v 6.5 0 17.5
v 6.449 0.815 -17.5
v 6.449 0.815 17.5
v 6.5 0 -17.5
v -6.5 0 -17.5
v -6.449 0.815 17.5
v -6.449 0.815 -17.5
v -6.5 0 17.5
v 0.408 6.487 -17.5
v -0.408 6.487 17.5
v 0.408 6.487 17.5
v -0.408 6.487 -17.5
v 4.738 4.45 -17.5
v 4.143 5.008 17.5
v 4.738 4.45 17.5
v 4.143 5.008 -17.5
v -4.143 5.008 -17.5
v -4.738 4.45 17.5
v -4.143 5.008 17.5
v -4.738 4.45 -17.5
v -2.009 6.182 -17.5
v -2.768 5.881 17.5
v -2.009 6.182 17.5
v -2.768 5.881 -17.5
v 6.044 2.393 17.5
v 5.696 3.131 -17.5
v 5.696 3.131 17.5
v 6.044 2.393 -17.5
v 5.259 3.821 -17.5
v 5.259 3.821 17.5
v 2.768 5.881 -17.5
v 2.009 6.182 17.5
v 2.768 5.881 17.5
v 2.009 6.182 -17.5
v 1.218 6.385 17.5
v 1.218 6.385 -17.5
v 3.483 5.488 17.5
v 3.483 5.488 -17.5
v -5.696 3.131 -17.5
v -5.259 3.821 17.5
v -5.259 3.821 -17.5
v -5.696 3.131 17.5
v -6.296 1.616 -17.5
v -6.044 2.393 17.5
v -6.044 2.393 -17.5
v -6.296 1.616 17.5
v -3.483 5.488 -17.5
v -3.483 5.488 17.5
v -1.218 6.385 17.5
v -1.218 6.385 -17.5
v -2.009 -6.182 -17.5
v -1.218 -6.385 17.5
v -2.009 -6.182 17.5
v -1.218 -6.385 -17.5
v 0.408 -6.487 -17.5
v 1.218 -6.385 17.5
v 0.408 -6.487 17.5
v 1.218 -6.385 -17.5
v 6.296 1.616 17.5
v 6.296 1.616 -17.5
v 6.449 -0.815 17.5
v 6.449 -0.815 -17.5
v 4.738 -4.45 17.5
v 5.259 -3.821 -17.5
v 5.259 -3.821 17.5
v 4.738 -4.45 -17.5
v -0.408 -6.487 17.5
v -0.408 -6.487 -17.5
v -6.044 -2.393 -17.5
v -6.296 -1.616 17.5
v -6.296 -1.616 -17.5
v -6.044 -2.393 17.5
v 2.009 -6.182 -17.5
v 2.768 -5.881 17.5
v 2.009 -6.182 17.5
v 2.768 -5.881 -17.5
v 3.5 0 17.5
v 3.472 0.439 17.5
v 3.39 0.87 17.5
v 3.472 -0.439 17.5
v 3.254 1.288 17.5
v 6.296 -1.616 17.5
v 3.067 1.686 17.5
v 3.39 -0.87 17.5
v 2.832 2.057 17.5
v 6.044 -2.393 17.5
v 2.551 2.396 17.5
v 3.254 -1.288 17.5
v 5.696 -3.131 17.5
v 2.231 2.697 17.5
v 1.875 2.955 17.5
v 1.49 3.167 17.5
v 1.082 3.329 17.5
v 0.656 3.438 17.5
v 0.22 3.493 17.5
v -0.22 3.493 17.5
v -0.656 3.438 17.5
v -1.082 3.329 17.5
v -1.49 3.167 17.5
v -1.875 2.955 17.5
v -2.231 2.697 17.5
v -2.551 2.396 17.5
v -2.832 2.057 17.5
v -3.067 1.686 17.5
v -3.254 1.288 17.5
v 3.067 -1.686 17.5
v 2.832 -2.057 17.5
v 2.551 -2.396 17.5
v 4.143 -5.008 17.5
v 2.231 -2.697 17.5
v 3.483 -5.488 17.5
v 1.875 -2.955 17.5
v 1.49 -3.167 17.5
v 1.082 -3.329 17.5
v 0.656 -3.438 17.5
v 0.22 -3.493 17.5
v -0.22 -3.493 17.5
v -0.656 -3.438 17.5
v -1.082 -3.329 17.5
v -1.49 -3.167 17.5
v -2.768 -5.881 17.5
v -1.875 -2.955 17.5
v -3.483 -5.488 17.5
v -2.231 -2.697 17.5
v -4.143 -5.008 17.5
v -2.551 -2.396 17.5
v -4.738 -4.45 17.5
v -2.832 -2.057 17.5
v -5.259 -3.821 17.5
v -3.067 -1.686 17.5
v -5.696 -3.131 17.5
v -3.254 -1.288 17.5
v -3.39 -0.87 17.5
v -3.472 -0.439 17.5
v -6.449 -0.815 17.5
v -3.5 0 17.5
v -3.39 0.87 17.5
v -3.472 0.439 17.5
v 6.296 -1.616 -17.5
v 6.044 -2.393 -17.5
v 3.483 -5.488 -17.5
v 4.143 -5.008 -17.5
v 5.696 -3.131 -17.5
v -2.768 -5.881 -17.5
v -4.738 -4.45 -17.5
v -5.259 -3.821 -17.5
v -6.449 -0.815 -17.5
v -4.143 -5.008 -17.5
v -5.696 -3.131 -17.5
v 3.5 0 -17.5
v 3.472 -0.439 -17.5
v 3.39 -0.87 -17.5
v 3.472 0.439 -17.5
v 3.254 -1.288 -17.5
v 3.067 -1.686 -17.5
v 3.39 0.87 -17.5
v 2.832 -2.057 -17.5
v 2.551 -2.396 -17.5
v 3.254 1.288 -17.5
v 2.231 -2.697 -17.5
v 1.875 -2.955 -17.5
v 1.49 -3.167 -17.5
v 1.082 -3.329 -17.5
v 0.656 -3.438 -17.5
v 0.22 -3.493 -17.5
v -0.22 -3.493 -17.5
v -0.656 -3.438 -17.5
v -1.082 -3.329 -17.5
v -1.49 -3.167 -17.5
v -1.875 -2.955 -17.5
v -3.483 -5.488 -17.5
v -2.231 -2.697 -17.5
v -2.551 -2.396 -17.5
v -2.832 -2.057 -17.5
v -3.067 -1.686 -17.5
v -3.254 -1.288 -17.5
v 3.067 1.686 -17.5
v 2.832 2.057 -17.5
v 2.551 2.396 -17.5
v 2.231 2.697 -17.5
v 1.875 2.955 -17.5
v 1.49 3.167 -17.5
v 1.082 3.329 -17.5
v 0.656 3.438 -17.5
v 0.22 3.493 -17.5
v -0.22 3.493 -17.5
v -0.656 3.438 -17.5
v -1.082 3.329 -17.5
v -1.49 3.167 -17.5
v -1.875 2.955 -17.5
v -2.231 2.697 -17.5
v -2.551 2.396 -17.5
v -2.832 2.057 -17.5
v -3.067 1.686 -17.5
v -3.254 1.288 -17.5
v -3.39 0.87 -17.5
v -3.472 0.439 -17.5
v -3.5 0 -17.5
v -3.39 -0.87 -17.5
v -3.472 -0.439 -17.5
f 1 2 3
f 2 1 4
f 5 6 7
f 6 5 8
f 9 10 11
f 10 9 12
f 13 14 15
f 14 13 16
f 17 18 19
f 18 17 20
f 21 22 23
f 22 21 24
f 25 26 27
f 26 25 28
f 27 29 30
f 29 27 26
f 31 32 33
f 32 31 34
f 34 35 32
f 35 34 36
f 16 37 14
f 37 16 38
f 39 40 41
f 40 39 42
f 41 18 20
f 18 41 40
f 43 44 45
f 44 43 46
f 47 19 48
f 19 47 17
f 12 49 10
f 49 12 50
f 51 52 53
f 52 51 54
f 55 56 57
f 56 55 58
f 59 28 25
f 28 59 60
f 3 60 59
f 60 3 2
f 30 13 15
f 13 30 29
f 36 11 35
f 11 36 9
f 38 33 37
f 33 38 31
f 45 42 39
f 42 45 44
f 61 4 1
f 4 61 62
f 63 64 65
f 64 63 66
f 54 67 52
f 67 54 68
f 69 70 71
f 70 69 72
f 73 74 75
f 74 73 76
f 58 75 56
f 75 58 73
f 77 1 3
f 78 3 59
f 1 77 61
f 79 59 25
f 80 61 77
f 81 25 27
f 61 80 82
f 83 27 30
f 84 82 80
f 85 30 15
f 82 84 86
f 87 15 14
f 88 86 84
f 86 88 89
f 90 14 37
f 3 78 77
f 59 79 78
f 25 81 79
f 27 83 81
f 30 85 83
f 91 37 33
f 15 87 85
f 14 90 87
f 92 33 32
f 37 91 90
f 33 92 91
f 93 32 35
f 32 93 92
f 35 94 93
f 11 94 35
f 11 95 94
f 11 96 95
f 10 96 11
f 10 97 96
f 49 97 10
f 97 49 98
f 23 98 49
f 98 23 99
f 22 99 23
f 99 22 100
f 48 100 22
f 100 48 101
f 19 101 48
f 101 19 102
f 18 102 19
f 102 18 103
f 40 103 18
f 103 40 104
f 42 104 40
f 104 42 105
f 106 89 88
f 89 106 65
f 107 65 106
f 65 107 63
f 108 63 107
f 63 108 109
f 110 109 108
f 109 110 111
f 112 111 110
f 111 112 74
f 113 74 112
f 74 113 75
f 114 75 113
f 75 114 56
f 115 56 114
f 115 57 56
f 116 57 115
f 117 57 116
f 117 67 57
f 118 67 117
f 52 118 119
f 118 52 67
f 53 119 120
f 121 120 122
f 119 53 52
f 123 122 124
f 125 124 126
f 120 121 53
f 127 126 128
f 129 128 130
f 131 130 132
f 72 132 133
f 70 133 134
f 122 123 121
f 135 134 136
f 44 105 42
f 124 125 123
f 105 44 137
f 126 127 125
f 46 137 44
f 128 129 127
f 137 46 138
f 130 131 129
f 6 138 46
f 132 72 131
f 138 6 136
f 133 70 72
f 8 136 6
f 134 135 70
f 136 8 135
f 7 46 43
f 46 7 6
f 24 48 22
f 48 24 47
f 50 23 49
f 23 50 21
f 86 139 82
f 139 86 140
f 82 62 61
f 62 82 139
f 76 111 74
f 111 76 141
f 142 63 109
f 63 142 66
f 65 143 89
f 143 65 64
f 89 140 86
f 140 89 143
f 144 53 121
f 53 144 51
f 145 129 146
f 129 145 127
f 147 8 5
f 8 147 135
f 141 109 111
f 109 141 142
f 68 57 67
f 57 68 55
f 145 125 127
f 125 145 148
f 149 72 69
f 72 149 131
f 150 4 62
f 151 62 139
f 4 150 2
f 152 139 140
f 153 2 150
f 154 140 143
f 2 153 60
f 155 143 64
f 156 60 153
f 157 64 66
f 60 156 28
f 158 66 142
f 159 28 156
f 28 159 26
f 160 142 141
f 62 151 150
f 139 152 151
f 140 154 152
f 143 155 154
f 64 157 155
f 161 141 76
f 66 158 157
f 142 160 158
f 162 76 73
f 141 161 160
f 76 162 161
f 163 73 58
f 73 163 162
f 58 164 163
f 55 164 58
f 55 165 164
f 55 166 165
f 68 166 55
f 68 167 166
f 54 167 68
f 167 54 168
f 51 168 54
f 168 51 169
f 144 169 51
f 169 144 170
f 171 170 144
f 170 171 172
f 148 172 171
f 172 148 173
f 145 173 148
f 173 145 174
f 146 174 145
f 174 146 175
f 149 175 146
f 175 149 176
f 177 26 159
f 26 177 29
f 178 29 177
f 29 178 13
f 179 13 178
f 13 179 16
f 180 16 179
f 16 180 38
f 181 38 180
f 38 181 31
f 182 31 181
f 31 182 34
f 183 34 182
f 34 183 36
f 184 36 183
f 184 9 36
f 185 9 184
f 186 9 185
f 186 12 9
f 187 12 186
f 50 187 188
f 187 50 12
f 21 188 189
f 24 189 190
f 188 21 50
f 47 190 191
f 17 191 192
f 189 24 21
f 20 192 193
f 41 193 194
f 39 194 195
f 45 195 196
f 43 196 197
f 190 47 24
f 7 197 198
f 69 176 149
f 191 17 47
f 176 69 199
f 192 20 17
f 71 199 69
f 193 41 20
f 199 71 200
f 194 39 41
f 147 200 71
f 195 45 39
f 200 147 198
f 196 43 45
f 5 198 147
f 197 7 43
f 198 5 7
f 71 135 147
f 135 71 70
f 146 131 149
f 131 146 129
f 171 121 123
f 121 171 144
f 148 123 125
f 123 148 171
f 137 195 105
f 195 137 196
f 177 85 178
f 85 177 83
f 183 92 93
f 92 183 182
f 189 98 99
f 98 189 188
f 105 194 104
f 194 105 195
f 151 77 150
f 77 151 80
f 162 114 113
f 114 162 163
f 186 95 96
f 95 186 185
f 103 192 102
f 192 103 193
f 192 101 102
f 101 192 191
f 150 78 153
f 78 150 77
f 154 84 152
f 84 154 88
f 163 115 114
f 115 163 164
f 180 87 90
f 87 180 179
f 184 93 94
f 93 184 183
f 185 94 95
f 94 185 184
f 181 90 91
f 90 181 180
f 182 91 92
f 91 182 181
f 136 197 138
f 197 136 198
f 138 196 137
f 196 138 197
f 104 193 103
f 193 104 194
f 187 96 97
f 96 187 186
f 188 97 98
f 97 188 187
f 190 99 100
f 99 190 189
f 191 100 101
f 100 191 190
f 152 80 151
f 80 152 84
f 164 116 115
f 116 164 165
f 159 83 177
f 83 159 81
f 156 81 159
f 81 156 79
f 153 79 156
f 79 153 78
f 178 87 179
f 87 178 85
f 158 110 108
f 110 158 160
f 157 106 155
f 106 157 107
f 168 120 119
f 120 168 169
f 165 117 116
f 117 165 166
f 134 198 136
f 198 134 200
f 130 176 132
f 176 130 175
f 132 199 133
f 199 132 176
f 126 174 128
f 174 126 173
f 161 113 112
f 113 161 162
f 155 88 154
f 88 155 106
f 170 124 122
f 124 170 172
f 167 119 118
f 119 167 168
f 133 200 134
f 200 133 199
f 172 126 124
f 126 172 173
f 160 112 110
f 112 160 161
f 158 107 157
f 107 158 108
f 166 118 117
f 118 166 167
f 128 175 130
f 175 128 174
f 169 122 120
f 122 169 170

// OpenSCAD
$fn = 50;


difference() {
	union() {
		translate(v = [0, 0, -17.5000000000]) {
			cylinder(h = 35, r = 6.5000000000);
		}
	}
	union() {
		translate(v = [0, 0, -100.0000000000]) {
			cylinder(h = 200, r = 3.5000000000);
		}
	}
}
